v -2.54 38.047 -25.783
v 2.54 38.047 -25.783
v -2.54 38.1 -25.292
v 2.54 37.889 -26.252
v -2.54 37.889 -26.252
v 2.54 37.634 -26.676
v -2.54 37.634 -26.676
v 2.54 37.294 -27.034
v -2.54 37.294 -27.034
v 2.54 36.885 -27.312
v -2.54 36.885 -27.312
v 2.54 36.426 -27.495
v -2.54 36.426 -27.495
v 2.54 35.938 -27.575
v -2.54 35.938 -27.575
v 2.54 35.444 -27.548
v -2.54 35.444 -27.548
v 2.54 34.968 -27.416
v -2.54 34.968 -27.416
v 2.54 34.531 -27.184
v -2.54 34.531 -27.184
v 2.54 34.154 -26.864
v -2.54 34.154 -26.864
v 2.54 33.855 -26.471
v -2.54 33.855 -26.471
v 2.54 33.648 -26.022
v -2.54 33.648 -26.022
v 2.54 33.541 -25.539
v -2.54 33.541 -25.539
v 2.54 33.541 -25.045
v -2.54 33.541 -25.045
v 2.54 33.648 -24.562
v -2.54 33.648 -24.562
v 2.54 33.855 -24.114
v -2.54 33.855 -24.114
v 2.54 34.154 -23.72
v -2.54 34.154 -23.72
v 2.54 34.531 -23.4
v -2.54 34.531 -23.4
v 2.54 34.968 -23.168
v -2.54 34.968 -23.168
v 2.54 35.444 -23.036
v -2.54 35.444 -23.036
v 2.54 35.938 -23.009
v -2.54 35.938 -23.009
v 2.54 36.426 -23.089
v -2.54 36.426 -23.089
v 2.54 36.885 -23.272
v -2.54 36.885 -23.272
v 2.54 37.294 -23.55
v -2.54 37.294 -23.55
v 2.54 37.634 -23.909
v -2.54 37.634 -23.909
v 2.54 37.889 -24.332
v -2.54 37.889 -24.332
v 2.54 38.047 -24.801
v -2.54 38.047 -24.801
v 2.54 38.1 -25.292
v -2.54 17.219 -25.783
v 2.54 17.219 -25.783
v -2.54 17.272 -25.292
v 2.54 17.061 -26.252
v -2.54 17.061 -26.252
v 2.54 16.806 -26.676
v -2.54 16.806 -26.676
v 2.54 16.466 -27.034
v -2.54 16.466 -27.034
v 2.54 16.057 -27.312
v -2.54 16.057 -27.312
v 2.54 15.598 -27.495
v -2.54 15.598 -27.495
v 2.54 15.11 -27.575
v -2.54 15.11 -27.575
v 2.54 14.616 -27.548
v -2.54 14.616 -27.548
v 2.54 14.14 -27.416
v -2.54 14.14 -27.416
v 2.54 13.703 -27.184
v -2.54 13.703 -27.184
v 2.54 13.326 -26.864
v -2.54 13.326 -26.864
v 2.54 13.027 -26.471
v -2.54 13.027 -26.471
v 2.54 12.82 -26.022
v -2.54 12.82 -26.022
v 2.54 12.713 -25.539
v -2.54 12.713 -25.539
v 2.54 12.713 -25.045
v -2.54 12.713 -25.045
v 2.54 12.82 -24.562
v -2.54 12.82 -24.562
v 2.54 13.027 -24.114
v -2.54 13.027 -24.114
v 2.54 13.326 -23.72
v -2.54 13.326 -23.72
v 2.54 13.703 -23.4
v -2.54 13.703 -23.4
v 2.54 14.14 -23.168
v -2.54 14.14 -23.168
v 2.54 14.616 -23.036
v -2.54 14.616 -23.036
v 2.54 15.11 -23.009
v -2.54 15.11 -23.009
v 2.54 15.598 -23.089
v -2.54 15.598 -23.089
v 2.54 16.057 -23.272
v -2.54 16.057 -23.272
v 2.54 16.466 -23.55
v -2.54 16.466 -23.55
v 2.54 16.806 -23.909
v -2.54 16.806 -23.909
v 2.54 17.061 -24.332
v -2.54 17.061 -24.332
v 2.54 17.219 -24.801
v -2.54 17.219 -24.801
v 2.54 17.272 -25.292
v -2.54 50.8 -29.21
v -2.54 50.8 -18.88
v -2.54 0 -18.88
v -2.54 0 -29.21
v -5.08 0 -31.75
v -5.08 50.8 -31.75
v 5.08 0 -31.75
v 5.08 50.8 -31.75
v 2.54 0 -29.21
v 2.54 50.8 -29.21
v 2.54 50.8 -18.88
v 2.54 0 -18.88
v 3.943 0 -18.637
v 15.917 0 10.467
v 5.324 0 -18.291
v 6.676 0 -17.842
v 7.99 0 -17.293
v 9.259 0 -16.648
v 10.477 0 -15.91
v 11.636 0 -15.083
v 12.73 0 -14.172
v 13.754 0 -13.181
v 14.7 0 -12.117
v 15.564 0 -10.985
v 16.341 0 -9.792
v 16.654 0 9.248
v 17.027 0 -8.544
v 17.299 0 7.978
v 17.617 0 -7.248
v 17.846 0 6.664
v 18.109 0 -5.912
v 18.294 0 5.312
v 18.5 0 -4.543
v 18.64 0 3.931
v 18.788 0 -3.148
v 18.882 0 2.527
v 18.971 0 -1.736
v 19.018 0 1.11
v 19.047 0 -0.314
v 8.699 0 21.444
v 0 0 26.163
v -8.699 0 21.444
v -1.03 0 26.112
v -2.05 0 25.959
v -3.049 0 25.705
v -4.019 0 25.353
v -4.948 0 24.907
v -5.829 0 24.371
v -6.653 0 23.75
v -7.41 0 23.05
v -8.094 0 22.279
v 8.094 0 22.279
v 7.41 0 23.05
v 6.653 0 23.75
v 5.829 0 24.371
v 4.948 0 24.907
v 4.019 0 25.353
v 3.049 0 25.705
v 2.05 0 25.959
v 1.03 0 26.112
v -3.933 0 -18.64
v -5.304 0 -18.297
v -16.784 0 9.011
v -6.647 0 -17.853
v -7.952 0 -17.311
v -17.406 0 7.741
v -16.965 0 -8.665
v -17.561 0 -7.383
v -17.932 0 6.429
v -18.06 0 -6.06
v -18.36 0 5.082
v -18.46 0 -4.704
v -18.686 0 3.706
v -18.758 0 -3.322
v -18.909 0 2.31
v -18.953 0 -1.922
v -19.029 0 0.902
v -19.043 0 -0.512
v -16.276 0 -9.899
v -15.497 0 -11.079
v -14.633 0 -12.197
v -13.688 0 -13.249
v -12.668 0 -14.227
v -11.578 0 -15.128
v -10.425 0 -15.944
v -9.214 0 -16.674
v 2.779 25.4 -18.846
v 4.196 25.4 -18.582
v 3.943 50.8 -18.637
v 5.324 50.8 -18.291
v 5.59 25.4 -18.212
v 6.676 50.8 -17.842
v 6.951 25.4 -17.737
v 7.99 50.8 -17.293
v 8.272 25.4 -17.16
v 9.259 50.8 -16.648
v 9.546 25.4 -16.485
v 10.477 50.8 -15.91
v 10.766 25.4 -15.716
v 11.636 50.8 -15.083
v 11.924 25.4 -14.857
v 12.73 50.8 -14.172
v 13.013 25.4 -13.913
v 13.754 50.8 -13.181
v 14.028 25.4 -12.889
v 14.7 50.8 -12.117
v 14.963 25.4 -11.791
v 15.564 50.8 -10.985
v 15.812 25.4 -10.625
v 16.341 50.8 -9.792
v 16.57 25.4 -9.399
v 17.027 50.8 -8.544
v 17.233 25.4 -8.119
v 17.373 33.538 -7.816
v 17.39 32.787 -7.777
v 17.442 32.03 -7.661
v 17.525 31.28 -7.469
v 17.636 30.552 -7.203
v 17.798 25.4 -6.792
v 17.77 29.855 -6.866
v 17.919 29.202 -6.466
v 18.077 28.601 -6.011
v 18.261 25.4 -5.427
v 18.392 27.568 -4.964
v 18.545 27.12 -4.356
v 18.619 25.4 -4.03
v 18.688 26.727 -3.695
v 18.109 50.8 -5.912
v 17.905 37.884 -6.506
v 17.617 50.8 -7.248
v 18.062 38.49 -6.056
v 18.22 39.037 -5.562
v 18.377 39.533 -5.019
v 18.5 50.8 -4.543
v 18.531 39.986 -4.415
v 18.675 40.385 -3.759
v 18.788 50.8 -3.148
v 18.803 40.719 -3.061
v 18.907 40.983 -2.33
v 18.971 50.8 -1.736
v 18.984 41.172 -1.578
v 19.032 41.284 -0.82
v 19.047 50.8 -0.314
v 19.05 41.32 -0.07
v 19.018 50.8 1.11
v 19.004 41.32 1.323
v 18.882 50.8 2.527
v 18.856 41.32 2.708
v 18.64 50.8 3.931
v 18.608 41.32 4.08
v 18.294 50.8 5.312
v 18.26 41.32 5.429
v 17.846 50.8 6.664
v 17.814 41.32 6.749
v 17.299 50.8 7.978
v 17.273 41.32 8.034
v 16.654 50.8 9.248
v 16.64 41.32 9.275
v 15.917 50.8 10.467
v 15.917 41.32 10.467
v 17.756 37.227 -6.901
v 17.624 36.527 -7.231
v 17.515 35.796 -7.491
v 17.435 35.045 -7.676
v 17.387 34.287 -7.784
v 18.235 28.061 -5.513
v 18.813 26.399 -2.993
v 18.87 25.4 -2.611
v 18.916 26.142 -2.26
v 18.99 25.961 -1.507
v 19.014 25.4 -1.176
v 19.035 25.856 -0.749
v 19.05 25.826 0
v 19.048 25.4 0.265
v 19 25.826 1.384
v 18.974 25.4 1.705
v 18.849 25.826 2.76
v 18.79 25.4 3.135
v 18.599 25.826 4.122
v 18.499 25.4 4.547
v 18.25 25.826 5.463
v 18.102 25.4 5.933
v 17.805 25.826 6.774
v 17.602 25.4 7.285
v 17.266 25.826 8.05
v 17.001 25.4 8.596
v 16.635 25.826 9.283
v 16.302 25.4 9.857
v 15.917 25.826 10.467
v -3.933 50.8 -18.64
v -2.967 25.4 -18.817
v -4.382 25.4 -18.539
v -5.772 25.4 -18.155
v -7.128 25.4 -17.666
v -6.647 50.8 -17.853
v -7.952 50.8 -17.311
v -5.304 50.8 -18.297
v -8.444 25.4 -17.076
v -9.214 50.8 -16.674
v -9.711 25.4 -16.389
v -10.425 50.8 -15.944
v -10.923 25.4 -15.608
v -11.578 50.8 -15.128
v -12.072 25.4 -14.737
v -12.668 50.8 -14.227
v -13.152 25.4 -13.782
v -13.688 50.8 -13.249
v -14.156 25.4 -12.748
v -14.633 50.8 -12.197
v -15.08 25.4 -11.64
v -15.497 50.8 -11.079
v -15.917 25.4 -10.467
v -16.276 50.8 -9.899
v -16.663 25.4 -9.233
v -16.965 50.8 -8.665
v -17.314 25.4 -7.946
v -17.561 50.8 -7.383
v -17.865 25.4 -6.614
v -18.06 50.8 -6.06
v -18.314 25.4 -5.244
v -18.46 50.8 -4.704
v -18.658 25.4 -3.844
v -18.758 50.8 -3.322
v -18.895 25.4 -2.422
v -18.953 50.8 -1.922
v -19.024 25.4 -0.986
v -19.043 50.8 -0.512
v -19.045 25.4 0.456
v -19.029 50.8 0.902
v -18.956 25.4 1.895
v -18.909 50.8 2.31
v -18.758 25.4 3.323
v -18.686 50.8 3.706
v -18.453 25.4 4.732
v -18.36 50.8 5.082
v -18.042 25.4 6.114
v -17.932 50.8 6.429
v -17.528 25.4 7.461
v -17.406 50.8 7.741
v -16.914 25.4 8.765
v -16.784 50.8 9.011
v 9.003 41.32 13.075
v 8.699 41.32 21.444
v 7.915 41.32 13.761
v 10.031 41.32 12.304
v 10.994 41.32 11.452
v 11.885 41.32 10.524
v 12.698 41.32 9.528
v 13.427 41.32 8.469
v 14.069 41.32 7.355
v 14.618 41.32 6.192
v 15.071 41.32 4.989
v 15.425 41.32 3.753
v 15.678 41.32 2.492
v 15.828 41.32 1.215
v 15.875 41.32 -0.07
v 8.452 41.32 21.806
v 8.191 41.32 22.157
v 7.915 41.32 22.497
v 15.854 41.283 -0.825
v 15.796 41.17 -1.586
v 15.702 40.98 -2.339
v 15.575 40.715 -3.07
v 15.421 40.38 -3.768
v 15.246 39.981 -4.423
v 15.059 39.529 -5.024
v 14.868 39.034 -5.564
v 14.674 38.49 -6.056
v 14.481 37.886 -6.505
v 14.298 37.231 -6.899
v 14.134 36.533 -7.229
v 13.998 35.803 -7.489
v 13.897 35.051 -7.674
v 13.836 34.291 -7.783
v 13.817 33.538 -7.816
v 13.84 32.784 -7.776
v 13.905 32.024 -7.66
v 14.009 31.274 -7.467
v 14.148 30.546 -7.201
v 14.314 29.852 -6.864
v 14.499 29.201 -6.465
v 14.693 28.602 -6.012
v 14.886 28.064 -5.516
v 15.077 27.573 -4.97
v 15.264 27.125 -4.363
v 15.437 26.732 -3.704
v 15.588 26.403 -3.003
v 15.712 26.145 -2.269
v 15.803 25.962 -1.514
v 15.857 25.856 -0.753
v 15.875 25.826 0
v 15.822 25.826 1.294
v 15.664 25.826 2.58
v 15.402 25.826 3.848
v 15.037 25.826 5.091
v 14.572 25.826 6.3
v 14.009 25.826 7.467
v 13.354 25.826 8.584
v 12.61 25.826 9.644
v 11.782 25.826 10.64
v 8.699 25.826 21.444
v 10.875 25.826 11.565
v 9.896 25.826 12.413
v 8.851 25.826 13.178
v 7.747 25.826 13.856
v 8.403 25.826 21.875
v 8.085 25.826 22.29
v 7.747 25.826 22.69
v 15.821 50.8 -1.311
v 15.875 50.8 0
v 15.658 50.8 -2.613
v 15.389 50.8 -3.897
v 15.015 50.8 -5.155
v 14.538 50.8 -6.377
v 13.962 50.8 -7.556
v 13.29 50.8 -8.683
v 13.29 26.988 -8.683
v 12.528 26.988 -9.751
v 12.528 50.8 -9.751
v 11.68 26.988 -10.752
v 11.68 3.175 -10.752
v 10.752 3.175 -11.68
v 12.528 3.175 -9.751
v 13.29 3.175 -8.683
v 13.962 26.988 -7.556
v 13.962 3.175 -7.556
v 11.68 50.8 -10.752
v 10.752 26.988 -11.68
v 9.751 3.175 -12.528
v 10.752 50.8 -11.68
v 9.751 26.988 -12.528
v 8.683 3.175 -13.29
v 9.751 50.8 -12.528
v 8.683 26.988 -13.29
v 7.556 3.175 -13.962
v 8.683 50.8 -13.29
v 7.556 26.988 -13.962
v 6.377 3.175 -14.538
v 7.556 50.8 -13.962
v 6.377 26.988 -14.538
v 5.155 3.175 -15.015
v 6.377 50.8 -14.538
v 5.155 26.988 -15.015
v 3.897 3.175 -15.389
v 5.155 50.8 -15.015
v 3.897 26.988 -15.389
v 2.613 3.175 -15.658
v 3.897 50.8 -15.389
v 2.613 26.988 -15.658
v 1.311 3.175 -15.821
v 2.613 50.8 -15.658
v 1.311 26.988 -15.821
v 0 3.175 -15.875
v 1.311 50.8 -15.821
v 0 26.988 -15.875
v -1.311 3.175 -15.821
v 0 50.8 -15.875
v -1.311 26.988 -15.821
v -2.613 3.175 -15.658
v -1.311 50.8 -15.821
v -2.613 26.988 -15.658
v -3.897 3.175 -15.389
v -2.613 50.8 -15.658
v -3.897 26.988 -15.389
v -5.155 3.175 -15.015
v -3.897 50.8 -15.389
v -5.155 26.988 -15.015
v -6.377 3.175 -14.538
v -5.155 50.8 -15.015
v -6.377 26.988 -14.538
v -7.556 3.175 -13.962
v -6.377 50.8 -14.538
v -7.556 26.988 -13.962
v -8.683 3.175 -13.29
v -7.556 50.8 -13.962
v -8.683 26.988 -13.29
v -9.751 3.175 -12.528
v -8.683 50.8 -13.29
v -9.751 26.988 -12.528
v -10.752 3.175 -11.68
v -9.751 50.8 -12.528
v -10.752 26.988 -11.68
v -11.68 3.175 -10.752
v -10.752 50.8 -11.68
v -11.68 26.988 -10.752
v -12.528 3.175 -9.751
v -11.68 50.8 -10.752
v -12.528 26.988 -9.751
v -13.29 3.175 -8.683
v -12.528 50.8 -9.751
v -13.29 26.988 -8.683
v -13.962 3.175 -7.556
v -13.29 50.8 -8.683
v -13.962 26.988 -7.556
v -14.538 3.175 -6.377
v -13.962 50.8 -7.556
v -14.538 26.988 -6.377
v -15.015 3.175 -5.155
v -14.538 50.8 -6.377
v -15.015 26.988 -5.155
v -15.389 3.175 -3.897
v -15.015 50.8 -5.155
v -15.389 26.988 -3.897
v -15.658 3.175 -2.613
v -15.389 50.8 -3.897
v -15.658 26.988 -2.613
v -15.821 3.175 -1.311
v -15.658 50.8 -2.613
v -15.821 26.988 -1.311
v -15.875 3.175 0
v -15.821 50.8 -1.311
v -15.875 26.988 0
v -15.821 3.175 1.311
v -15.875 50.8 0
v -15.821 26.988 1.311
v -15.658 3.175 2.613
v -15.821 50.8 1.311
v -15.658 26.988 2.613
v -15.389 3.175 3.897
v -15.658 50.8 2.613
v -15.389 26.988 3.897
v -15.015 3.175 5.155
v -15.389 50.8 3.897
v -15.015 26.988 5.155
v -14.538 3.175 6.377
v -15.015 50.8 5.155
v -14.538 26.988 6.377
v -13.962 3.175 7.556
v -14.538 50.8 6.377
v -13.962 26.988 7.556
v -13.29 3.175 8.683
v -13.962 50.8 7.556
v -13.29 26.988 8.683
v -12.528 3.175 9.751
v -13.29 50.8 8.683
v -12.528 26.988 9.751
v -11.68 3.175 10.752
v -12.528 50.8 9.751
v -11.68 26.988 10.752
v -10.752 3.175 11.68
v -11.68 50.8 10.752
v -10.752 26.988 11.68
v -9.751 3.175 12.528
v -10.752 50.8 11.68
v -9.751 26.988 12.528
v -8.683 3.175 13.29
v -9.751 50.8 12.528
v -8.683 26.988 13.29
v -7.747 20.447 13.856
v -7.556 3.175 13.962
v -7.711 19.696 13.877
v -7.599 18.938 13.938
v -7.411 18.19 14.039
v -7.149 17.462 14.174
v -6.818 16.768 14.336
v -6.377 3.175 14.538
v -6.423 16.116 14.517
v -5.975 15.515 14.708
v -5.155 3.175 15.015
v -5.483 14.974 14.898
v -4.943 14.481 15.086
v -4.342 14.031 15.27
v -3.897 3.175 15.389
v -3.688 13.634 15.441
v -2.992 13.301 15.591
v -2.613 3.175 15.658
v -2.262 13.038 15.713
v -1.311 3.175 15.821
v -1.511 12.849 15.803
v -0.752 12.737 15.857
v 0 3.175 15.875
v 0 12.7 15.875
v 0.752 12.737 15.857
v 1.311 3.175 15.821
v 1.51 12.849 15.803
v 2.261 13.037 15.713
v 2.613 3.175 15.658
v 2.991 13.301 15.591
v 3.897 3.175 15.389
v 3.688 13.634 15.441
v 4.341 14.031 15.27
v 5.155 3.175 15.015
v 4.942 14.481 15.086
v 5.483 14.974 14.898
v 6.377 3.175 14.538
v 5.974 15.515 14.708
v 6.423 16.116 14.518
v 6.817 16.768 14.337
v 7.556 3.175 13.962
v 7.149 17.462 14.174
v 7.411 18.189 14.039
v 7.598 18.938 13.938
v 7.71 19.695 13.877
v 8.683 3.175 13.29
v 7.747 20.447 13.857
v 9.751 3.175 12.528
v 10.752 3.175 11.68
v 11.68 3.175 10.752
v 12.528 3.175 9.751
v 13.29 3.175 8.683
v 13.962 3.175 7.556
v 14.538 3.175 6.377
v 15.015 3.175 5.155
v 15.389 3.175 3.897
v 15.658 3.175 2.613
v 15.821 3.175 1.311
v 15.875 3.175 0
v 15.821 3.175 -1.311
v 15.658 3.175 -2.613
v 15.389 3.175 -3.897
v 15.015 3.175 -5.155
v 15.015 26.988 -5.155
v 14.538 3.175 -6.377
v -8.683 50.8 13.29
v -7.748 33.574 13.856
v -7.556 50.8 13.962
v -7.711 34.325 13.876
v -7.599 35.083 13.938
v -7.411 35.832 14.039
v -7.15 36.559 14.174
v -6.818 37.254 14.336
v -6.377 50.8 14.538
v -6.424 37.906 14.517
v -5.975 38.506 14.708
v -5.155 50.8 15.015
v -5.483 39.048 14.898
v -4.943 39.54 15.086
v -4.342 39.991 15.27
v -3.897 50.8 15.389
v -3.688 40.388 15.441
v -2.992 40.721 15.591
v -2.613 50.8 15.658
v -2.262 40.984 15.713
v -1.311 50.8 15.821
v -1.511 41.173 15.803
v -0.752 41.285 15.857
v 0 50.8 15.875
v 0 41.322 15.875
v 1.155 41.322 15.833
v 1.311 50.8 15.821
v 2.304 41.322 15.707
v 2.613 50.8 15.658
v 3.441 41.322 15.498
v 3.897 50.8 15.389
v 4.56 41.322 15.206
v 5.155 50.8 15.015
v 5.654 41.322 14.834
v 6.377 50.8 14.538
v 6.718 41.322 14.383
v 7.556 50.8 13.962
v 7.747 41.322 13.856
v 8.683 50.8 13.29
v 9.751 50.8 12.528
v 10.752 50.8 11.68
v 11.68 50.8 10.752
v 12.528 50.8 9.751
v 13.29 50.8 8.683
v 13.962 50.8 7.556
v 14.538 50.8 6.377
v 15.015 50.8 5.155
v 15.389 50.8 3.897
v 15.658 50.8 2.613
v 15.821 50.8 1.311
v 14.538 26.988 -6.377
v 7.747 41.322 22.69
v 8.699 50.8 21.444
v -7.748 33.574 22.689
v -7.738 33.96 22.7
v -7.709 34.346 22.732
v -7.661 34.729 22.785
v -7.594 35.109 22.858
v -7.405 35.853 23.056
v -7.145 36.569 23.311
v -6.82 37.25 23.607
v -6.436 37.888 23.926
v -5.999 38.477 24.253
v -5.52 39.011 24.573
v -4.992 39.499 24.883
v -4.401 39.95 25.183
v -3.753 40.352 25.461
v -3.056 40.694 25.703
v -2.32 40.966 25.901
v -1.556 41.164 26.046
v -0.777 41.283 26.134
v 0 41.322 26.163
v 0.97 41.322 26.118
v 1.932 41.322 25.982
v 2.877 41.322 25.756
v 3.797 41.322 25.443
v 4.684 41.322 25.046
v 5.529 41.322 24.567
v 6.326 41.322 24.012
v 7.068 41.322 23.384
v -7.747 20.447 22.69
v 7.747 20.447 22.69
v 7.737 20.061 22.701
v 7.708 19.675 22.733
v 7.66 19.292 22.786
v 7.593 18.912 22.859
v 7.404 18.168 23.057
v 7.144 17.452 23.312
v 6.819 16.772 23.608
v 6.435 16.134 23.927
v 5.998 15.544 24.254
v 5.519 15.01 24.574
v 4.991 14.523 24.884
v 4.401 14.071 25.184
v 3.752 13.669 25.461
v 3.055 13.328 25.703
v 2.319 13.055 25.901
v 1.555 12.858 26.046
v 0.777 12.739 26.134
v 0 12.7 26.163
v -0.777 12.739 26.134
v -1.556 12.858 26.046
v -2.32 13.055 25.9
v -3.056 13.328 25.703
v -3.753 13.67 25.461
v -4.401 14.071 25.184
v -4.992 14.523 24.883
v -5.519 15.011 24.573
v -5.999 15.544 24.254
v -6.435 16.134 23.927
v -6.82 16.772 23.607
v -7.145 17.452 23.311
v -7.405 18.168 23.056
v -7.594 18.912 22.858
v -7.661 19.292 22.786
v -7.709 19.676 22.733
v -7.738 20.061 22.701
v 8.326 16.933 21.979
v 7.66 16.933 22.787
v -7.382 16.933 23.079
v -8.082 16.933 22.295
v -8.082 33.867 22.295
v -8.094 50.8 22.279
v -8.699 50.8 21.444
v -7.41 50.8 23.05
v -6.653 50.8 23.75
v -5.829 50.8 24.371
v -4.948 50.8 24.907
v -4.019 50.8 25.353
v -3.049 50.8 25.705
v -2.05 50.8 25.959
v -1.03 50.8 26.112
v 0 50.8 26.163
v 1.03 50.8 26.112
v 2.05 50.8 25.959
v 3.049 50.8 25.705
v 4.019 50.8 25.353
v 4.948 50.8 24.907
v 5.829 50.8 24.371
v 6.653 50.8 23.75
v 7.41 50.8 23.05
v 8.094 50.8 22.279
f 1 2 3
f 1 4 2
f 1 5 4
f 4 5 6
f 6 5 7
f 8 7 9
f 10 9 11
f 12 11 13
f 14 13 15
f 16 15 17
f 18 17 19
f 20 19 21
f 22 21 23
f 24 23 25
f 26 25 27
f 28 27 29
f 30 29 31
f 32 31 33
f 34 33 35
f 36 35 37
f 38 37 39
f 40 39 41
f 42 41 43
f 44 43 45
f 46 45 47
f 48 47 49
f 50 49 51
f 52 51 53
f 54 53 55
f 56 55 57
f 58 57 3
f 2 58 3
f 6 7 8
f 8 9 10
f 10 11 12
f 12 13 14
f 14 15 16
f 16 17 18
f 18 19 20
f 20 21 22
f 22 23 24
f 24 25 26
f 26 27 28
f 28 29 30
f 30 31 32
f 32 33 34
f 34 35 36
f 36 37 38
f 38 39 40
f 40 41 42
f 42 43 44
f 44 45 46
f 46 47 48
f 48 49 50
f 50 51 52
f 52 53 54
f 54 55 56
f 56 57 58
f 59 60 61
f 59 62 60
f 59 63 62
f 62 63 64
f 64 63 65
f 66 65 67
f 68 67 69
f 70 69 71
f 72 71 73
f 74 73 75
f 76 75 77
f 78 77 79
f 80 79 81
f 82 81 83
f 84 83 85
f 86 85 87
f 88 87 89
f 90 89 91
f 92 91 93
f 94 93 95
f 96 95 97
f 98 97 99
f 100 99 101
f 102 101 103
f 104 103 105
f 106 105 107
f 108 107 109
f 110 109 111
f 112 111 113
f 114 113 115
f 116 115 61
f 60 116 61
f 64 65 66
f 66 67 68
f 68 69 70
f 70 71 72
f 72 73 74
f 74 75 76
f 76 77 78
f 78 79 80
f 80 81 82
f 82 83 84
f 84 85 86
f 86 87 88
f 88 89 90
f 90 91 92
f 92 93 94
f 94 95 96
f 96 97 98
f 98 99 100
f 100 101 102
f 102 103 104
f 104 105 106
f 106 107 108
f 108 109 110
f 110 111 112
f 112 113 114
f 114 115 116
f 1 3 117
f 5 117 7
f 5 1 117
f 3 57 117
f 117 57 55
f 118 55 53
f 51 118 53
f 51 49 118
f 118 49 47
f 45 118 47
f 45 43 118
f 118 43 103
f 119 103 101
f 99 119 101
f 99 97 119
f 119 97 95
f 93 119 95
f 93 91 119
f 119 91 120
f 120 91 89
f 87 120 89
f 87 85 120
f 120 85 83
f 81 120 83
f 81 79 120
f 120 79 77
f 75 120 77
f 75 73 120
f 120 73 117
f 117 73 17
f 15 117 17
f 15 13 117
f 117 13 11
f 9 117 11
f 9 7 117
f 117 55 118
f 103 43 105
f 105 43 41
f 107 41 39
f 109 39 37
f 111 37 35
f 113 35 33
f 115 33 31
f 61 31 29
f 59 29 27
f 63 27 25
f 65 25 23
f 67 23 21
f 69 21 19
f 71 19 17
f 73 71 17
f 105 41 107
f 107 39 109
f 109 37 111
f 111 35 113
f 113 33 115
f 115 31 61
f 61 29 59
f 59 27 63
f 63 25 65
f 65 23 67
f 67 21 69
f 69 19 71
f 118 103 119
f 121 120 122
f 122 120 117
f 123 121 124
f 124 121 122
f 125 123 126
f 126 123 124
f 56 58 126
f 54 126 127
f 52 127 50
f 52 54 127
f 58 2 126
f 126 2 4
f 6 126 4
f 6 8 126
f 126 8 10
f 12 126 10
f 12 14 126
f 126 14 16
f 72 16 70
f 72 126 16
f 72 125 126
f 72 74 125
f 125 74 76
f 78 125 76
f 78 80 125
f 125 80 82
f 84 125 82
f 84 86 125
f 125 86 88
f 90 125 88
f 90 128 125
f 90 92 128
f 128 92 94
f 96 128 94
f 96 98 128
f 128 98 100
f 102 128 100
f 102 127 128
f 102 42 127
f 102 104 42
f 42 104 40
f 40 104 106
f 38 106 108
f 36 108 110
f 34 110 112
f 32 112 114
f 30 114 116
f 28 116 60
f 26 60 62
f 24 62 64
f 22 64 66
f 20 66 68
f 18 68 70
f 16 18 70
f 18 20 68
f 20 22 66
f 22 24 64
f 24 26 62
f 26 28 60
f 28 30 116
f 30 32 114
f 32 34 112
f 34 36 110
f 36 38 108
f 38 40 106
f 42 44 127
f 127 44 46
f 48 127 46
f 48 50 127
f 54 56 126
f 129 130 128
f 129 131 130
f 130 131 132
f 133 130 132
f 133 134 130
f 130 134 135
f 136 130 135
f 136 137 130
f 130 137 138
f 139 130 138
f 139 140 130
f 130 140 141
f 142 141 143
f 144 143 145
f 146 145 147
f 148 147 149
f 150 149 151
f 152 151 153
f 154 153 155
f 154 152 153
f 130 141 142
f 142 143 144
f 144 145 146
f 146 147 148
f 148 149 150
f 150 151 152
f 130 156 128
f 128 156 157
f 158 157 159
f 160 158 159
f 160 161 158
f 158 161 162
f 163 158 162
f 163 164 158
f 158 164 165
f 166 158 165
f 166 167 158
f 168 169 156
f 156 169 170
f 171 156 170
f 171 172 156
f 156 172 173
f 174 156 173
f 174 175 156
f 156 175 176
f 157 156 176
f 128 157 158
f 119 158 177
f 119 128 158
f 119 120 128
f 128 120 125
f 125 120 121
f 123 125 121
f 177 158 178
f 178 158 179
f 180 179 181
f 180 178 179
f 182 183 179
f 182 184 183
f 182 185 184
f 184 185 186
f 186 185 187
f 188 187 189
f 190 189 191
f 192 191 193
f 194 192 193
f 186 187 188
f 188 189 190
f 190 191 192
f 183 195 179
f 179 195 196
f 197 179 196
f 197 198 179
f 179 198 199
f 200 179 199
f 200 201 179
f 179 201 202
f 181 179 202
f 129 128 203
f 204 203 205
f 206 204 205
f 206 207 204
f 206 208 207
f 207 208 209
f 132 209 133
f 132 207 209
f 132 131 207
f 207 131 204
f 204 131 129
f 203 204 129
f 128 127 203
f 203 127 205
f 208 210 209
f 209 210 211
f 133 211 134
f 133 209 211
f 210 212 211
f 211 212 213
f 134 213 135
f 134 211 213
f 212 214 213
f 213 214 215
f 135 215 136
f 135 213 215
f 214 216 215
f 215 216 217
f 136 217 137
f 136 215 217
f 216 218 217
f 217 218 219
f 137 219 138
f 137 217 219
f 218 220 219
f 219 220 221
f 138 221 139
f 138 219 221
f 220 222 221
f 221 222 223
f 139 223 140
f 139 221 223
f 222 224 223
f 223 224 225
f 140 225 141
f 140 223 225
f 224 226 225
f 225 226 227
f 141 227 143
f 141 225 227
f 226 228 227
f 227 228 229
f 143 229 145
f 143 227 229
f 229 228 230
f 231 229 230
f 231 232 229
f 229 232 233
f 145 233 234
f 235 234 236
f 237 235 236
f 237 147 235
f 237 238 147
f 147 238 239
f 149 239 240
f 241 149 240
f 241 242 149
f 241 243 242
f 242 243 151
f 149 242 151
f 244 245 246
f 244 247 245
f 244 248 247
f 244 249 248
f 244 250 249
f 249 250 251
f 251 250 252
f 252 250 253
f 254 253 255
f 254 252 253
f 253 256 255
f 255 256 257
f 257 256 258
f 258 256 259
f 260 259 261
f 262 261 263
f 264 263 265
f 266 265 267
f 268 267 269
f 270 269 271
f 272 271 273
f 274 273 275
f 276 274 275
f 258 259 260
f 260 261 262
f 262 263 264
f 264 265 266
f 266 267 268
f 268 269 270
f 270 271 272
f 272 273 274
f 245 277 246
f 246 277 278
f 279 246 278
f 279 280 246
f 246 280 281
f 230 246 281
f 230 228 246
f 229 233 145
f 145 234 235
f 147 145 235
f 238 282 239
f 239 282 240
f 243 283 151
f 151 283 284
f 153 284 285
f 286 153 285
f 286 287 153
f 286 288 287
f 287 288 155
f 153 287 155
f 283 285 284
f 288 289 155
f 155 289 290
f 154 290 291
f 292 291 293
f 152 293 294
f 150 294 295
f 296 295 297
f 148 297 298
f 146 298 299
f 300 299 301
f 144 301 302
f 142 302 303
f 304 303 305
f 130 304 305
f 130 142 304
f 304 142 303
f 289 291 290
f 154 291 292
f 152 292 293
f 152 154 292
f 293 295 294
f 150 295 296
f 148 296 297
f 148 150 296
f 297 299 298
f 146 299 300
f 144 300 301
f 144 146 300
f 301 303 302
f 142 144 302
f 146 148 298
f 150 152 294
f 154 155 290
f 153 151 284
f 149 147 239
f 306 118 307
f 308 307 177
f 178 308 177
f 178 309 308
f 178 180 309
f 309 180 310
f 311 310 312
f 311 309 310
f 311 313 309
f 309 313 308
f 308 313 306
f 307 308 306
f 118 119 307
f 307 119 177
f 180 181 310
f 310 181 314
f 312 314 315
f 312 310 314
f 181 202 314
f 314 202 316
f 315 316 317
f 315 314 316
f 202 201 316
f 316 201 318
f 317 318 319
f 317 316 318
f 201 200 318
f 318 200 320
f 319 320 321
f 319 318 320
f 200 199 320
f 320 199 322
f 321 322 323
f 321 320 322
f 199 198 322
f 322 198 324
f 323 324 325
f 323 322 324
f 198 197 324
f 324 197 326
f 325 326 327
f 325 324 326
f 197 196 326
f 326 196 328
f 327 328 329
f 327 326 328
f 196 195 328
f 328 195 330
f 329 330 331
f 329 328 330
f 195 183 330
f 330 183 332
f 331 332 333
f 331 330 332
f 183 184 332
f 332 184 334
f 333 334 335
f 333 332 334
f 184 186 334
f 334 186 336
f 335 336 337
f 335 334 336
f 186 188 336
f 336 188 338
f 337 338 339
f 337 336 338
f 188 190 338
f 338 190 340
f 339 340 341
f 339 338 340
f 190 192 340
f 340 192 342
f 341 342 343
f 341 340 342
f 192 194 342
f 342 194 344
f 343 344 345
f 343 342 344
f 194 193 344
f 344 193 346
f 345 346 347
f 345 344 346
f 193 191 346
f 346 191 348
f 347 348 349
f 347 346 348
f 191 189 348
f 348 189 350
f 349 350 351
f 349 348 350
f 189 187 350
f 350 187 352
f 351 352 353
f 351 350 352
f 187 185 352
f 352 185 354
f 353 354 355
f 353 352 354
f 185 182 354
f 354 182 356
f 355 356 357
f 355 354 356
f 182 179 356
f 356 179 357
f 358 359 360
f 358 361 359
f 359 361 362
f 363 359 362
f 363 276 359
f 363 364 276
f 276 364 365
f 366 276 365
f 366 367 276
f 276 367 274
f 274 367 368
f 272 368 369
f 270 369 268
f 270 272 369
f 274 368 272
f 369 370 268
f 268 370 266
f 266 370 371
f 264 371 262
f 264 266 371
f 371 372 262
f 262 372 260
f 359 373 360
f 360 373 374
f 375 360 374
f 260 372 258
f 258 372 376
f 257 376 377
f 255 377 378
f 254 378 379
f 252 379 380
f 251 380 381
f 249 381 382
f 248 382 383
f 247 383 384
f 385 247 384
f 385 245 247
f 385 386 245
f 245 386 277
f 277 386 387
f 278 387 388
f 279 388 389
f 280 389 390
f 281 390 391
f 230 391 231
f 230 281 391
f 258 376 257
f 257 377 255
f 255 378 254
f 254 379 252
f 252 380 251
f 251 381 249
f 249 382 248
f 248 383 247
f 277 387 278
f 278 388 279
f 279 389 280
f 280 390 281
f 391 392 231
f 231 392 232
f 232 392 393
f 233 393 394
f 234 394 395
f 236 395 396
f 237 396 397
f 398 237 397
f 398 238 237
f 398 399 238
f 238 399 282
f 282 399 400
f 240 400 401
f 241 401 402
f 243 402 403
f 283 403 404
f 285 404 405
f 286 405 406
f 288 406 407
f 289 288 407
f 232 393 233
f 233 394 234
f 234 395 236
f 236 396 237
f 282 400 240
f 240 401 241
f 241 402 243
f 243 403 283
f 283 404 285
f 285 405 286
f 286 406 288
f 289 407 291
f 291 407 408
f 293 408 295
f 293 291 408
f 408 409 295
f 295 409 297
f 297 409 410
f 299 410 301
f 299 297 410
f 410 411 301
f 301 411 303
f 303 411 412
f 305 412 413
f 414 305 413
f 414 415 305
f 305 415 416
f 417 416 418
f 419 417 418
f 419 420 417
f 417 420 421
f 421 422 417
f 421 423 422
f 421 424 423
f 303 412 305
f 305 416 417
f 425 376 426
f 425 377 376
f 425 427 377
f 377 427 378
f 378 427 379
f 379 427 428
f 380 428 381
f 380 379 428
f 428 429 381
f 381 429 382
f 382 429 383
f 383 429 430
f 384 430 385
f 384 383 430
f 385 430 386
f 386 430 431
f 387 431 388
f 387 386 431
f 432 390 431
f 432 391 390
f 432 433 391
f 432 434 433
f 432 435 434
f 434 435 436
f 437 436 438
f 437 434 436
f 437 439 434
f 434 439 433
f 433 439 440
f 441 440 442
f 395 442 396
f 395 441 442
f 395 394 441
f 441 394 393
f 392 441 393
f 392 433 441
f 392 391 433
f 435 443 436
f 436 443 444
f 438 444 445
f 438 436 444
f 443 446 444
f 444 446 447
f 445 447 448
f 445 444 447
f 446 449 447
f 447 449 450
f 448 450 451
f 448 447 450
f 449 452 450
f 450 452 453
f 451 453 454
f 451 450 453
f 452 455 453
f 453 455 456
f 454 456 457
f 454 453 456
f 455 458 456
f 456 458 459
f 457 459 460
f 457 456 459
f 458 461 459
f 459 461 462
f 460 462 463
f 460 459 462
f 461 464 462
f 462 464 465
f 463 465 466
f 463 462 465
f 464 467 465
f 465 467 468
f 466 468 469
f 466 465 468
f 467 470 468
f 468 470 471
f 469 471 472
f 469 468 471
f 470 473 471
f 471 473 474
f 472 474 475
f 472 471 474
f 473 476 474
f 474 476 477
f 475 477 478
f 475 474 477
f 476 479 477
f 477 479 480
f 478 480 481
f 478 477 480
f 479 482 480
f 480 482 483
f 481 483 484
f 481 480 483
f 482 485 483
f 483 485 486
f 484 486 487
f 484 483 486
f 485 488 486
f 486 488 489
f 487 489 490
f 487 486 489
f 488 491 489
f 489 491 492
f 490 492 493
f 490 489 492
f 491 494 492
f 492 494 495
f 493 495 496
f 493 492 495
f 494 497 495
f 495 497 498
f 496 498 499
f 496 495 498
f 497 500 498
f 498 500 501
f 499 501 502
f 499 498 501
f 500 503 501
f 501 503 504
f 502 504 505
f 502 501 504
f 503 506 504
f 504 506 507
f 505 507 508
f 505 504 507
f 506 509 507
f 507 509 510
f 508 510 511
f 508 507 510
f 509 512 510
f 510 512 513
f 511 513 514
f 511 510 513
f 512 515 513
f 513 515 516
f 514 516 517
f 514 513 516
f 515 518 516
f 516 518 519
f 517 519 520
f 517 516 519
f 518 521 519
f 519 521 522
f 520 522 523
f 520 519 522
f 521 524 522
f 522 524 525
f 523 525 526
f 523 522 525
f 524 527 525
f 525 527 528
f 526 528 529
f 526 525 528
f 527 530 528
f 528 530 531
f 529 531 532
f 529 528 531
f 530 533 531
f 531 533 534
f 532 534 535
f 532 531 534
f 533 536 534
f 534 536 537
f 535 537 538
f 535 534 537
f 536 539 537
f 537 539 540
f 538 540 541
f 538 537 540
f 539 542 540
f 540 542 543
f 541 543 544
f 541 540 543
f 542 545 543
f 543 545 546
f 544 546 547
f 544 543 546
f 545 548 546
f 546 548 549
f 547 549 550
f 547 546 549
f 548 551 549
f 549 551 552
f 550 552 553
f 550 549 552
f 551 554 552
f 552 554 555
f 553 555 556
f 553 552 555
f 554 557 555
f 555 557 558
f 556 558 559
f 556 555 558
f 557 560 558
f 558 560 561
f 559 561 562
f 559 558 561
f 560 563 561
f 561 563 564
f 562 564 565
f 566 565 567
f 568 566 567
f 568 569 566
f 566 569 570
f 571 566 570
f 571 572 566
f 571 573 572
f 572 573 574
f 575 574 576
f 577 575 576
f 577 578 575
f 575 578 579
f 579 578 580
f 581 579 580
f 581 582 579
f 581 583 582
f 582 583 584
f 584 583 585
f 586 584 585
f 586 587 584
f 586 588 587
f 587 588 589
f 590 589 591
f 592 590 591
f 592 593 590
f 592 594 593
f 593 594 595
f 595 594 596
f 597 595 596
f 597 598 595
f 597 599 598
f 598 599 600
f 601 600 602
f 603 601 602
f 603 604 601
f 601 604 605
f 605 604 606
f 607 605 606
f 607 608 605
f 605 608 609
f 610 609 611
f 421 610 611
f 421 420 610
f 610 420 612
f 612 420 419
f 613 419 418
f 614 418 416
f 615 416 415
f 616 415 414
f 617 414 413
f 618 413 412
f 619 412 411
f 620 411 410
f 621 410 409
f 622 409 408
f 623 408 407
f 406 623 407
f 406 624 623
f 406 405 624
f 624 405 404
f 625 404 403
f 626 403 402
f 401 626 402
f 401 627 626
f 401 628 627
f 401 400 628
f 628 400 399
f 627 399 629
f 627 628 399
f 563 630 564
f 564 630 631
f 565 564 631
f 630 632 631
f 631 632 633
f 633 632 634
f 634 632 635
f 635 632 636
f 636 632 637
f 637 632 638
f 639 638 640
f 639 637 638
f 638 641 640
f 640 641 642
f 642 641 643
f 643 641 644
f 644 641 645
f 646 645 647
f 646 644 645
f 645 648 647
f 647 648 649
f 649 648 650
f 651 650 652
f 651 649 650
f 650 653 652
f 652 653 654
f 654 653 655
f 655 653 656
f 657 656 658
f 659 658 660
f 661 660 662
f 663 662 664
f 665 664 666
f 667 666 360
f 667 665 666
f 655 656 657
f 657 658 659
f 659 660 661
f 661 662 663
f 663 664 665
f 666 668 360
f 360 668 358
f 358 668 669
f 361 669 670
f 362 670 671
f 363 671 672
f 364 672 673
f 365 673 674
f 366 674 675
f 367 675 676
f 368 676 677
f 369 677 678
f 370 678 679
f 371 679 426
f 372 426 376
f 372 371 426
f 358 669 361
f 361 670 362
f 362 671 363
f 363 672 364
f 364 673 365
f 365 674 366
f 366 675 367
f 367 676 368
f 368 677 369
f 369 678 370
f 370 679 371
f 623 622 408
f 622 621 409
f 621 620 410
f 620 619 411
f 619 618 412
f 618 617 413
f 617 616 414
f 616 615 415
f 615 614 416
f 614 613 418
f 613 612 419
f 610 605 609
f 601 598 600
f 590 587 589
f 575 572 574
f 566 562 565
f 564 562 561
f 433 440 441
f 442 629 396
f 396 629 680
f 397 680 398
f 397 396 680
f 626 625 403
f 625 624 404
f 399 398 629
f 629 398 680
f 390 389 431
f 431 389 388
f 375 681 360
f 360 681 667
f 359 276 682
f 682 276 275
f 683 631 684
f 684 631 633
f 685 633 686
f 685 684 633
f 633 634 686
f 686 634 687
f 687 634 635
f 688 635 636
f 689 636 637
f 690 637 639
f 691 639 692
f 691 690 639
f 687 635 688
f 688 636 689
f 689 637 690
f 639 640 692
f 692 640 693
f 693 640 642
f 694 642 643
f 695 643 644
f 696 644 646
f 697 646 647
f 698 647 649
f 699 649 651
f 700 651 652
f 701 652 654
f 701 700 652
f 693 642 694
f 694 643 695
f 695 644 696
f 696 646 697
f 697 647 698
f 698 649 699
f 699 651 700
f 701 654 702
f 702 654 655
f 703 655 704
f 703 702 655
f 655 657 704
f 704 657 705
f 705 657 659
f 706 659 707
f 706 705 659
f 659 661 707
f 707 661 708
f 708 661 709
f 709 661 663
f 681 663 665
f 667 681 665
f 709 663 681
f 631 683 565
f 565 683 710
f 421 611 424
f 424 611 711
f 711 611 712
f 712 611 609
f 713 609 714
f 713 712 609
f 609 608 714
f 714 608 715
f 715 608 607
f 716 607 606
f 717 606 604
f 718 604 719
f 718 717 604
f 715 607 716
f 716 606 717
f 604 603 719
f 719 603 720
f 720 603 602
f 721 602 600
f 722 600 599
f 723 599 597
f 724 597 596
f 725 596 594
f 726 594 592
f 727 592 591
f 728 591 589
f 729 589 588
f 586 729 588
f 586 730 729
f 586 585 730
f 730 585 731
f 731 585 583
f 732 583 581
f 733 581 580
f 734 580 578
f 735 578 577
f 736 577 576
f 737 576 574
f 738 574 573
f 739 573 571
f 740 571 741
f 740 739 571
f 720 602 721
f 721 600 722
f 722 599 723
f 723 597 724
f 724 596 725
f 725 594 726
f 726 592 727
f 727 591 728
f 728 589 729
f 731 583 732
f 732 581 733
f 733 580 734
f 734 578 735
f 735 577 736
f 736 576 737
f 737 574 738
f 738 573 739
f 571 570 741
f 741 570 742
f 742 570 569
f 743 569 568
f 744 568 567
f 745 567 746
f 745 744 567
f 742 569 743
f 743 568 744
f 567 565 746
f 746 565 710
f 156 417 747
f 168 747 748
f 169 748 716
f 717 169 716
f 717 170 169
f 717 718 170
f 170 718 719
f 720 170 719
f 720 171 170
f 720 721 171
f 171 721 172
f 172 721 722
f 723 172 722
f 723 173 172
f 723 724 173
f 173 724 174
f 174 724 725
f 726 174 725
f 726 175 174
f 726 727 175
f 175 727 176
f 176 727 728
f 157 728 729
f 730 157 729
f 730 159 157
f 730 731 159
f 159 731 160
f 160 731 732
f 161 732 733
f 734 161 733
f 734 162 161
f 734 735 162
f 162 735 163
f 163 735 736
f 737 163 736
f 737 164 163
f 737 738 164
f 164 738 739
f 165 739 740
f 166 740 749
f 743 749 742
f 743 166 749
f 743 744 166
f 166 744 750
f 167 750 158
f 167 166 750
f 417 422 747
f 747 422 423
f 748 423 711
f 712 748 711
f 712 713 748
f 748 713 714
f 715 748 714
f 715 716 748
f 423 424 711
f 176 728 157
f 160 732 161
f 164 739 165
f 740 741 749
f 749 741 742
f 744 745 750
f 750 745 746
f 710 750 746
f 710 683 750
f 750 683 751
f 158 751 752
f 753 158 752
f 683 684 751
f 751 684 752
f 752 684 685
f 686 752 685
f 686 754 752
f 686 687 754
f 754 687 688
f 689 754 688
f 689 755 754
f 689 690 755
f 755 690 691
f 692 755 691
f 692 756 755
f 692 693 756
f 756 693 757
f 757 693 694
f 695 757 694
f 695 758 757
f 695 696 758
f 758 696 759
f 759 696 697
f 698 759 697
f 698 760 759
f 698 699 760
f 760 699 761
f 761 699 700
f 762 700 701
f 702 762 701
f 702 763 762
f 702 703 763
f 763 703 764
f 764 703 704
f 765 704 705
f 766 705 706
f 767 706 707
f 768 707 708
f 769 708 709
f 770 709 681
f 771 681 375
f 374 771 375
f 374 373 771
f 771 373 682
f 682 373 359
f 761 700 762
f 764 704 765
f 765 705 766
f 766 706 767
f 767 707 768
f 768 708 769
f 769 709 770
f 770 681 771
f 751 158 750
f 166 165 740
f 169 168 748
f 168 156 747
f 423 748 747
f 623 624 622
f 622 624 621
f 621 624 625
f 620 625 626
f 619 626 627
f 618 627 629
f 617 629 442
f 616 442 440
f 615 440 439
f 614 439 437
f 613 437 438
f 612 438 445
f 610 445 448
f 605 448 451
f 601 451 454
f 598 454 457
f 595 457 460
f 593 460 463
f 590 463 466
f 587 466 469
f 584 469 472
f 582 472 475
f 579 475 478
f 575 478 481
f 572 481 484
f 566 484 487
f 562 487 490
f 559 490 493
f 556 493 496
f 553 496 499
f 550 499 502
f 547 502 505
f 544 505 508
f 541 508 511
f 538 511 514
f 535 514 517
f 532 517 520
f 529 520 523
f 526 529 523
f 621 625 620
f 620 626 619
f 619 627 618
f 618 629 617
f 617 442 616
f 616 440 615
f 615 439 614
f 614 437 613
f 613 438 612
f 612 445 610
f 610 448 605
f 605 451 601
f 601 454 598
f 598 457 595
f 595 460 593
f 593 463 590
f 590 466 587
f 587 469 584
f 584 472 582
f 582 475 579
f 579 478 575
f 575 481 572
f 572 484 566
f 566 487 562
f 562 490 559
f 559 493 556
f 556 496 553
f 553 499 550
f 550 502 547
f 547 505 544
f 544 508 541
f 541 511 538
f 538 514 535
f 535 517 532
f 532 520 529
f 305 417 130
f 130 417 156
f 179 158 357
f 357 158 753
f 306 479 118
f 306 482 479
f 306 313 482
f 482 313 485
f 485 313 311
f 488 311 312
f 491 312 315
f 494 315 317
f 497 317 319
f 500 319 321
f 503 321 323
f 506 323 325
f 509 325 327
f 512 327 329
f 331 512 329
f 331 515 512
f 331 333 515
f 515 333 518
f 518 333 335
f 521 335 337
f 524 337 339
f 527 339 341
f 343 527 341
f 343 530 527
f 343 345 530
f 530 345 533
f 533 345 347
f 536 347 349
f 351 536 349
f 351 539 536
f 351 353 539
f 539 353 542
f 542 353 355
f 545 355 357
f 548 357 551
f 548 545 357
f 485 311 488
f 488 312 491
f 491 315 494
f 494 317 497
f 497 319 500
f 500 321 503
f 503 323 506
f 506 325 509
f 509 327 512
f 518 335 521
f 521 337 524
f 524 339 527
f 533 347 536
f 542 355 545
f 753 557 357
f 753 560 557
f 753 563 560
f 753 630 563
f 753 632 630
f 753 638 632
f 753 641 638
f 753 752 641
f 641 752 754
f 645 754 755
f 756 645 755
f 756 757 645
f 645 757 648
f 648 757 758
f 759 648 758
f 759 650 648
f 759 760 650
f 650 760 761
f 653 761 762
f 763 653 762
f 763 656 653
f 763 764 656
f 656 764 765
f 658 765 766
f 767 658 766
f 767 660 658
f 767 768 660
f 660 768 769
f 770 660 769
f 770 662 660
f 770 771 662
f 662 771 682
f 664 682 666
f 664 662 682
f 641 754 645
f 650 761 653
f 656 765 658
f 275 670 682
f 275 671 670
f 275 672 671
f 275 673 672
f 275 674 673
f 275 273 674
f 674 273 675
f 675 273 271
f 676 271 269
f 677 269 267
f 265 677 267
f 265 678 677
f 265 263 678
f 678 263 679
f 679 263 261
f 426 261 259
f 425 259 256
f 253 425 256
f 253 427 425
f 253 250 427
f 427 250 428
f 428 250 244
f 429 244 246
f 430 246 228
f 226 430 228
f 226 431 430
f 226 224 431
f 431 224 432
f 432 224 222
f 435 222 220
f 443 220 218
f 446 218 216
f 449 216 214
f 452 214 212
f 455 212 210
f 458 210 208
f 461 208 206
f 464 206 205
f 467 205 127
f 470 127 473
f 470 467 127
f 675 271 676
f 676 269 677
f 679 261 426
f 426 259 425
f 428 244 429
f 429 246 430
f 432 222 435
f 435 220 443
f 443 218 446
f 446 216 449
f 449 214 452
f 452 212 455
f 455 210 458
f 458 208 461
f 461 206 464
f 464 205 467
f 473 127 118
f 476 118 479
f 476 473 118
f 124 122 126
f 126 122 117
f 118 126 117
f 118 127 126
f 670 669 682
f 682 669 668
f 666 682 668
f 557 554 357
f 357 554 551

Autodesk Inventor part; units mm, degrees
ref_plane "YZ Plane" through (0, 0, 0) normal (1, 0, 0) x (0, 1, 0)
ref_plane "XZ Plane" through (0, 0, 0) normal (0, 1, 0) x (-1, 0, 0)
ref_plane "XY Plane" through (0, 0, 0) normal (0, 0, 1) x (1, 0, 0)
sketch "Sketch1" plane through (0, 0, 0) normal (0, 1, 0) x (-1, 0, 0)
  line L0 (0, 0) -> (0, 28.1143)
  line L1 (16.7843, 9.0105) -> (8.6989, 21.4436)
  line L2 (-8.6989, 21.4436) -> (-15.9171, 10.4666)
  arc A0 (-15.9171, 10.4666) -> (15.0435, 11.6875) centre (0, 0) ccw
  arc A1 (8.6989, 21.4436) -> (-8.6989, 21.4436) centre (0, 15.7866) ccw
extrude "Extrusion1" add sketch "Sketch1" along normal blind 50.8 contours A0 L2 A1 L1
sketch "Sketch2" plane through (0, 50.8, 0) normal (0, 1, 0) x (1, 0, 0)
  circle A0 centre (0, 0) radius 15.875
  dimension "d3" = 31.75
extrude "Extrusion2" cut sketch "Sketch2" against normal blind 47.625
sketch "Sketch3" plane through (0, 0, 0) normal (0, 0, 1) x (1, 0, 0)
  line L0 (0, 0) -> (0, 12.7)
  line L1 (-7.7476, 33.5742) -> (-7.7472, 20.4468)
  line L2 (7.7474, 33.5741) -> (7.7474, 33.574)
  line L3 (7.747, 25.8264) -> (7.7468, 20.4467)
  line L4 (7.7473, 41.3219) -> (-0.0002, 41.3219)
  arc A0 (0, 41.3219) -> (-7.7476, 33.5742) centre (-0.0001, 33.5744) ccw
  arc A1 (-7.7472, 20.4468) -> (7.7468, 20.4467) centre (-0.0002, 20.447) ccw
  arc A2 (7.747, 25.8264) -> (7.7473, 41.3219) centre (7.7474, 33.5741) ccw
  dimension "d6" = 12.7
extrude "Extrusion3" cut sketch "Sketch3" along normal blind 44.45
sketch "Sketch4" plane through (0, 0, 0) normal (1, 0, 0) x (0, 1, 0)
  arc A0 (25.8264, -0.0001) -> (41.32, -0.0702) centre (33.573, -0.0696) ccw
  line L0 (41.32, -0.0702) -> (41.32, 29.3277)
  line L1 (41.32, 29.3277) -> (25.8264, 29.047)
  line L2 (25.8264, 29.047) -> (25.8264, -0.0001)
  point P0 (0, 0)
  point P1 (25.8264, 17.4036)
extrude "Extrusion4" cut sketch "Sketch4" along normal blind 44.45
sketch "Sketch5" plane through (0, 0, 0) normal (0, -1, 0) x (1, 0, 0)
  arc A0 (-16.7843, 9.0105) -> (15.9171, 10.4666) centre (0, 0) ccw projected
  line L0 (0, -19.05) -> (0, -31.75)
  line L1 (2.54, -18.8799) -> (2.54, -29.21)
  line L2 (-2.54, -18.8799) -> (-2.54, -29.21)
  line L3 (5.08, -31.75) -> (2.54, -29.21)
  line L4 (-5.08, -31.75) -> (-2.54, -29.21)
  line L5 (5.08, -31.75) -> (-5.08, -31.75)
  arc A1 (-2.54, -18.8799) -> (2.54, -18.8799) centre (0, 0.0817) ccw
  dimension "d13" = 12.7
  dimension "d14" = 5.08
  dimension "d27" = 10.16
extrude "Extrusion5" add sketch "Sketch5" against normal blind 50.8
sketch "Sketch6" plane through (0, 0, 0) normal (1, 0, 0) x (0, 1, 0)
  line L0 (0, -31.75) -> (50.8, -31.75) projected
  circle A0 centre (35.814, -25.2921) radius 2.286
  circle A1 centre (14.986, -25.2921) radius 2.286
  line L1 (0, -25.2921) -> (12.7, -25.2921)
  line L2 (38.1, -25.2921) -> (50.8, -25.2921)
  line L3 (50.8, -19.05) -> (50.8, 10.4666) projected
  point P0 (0, 0)
  point P1 (50.8, 9.0105)
  dimension "d19" = 4.572
  dimension "d20" = 4.572
  dimension "d23" = 12.7
  dimension "d24" = 12.7
extrude "Extrusion6" cut sketch "Sketch6" along normal mid plane 44.45
properties part number "bikeLockMountV2part1"
